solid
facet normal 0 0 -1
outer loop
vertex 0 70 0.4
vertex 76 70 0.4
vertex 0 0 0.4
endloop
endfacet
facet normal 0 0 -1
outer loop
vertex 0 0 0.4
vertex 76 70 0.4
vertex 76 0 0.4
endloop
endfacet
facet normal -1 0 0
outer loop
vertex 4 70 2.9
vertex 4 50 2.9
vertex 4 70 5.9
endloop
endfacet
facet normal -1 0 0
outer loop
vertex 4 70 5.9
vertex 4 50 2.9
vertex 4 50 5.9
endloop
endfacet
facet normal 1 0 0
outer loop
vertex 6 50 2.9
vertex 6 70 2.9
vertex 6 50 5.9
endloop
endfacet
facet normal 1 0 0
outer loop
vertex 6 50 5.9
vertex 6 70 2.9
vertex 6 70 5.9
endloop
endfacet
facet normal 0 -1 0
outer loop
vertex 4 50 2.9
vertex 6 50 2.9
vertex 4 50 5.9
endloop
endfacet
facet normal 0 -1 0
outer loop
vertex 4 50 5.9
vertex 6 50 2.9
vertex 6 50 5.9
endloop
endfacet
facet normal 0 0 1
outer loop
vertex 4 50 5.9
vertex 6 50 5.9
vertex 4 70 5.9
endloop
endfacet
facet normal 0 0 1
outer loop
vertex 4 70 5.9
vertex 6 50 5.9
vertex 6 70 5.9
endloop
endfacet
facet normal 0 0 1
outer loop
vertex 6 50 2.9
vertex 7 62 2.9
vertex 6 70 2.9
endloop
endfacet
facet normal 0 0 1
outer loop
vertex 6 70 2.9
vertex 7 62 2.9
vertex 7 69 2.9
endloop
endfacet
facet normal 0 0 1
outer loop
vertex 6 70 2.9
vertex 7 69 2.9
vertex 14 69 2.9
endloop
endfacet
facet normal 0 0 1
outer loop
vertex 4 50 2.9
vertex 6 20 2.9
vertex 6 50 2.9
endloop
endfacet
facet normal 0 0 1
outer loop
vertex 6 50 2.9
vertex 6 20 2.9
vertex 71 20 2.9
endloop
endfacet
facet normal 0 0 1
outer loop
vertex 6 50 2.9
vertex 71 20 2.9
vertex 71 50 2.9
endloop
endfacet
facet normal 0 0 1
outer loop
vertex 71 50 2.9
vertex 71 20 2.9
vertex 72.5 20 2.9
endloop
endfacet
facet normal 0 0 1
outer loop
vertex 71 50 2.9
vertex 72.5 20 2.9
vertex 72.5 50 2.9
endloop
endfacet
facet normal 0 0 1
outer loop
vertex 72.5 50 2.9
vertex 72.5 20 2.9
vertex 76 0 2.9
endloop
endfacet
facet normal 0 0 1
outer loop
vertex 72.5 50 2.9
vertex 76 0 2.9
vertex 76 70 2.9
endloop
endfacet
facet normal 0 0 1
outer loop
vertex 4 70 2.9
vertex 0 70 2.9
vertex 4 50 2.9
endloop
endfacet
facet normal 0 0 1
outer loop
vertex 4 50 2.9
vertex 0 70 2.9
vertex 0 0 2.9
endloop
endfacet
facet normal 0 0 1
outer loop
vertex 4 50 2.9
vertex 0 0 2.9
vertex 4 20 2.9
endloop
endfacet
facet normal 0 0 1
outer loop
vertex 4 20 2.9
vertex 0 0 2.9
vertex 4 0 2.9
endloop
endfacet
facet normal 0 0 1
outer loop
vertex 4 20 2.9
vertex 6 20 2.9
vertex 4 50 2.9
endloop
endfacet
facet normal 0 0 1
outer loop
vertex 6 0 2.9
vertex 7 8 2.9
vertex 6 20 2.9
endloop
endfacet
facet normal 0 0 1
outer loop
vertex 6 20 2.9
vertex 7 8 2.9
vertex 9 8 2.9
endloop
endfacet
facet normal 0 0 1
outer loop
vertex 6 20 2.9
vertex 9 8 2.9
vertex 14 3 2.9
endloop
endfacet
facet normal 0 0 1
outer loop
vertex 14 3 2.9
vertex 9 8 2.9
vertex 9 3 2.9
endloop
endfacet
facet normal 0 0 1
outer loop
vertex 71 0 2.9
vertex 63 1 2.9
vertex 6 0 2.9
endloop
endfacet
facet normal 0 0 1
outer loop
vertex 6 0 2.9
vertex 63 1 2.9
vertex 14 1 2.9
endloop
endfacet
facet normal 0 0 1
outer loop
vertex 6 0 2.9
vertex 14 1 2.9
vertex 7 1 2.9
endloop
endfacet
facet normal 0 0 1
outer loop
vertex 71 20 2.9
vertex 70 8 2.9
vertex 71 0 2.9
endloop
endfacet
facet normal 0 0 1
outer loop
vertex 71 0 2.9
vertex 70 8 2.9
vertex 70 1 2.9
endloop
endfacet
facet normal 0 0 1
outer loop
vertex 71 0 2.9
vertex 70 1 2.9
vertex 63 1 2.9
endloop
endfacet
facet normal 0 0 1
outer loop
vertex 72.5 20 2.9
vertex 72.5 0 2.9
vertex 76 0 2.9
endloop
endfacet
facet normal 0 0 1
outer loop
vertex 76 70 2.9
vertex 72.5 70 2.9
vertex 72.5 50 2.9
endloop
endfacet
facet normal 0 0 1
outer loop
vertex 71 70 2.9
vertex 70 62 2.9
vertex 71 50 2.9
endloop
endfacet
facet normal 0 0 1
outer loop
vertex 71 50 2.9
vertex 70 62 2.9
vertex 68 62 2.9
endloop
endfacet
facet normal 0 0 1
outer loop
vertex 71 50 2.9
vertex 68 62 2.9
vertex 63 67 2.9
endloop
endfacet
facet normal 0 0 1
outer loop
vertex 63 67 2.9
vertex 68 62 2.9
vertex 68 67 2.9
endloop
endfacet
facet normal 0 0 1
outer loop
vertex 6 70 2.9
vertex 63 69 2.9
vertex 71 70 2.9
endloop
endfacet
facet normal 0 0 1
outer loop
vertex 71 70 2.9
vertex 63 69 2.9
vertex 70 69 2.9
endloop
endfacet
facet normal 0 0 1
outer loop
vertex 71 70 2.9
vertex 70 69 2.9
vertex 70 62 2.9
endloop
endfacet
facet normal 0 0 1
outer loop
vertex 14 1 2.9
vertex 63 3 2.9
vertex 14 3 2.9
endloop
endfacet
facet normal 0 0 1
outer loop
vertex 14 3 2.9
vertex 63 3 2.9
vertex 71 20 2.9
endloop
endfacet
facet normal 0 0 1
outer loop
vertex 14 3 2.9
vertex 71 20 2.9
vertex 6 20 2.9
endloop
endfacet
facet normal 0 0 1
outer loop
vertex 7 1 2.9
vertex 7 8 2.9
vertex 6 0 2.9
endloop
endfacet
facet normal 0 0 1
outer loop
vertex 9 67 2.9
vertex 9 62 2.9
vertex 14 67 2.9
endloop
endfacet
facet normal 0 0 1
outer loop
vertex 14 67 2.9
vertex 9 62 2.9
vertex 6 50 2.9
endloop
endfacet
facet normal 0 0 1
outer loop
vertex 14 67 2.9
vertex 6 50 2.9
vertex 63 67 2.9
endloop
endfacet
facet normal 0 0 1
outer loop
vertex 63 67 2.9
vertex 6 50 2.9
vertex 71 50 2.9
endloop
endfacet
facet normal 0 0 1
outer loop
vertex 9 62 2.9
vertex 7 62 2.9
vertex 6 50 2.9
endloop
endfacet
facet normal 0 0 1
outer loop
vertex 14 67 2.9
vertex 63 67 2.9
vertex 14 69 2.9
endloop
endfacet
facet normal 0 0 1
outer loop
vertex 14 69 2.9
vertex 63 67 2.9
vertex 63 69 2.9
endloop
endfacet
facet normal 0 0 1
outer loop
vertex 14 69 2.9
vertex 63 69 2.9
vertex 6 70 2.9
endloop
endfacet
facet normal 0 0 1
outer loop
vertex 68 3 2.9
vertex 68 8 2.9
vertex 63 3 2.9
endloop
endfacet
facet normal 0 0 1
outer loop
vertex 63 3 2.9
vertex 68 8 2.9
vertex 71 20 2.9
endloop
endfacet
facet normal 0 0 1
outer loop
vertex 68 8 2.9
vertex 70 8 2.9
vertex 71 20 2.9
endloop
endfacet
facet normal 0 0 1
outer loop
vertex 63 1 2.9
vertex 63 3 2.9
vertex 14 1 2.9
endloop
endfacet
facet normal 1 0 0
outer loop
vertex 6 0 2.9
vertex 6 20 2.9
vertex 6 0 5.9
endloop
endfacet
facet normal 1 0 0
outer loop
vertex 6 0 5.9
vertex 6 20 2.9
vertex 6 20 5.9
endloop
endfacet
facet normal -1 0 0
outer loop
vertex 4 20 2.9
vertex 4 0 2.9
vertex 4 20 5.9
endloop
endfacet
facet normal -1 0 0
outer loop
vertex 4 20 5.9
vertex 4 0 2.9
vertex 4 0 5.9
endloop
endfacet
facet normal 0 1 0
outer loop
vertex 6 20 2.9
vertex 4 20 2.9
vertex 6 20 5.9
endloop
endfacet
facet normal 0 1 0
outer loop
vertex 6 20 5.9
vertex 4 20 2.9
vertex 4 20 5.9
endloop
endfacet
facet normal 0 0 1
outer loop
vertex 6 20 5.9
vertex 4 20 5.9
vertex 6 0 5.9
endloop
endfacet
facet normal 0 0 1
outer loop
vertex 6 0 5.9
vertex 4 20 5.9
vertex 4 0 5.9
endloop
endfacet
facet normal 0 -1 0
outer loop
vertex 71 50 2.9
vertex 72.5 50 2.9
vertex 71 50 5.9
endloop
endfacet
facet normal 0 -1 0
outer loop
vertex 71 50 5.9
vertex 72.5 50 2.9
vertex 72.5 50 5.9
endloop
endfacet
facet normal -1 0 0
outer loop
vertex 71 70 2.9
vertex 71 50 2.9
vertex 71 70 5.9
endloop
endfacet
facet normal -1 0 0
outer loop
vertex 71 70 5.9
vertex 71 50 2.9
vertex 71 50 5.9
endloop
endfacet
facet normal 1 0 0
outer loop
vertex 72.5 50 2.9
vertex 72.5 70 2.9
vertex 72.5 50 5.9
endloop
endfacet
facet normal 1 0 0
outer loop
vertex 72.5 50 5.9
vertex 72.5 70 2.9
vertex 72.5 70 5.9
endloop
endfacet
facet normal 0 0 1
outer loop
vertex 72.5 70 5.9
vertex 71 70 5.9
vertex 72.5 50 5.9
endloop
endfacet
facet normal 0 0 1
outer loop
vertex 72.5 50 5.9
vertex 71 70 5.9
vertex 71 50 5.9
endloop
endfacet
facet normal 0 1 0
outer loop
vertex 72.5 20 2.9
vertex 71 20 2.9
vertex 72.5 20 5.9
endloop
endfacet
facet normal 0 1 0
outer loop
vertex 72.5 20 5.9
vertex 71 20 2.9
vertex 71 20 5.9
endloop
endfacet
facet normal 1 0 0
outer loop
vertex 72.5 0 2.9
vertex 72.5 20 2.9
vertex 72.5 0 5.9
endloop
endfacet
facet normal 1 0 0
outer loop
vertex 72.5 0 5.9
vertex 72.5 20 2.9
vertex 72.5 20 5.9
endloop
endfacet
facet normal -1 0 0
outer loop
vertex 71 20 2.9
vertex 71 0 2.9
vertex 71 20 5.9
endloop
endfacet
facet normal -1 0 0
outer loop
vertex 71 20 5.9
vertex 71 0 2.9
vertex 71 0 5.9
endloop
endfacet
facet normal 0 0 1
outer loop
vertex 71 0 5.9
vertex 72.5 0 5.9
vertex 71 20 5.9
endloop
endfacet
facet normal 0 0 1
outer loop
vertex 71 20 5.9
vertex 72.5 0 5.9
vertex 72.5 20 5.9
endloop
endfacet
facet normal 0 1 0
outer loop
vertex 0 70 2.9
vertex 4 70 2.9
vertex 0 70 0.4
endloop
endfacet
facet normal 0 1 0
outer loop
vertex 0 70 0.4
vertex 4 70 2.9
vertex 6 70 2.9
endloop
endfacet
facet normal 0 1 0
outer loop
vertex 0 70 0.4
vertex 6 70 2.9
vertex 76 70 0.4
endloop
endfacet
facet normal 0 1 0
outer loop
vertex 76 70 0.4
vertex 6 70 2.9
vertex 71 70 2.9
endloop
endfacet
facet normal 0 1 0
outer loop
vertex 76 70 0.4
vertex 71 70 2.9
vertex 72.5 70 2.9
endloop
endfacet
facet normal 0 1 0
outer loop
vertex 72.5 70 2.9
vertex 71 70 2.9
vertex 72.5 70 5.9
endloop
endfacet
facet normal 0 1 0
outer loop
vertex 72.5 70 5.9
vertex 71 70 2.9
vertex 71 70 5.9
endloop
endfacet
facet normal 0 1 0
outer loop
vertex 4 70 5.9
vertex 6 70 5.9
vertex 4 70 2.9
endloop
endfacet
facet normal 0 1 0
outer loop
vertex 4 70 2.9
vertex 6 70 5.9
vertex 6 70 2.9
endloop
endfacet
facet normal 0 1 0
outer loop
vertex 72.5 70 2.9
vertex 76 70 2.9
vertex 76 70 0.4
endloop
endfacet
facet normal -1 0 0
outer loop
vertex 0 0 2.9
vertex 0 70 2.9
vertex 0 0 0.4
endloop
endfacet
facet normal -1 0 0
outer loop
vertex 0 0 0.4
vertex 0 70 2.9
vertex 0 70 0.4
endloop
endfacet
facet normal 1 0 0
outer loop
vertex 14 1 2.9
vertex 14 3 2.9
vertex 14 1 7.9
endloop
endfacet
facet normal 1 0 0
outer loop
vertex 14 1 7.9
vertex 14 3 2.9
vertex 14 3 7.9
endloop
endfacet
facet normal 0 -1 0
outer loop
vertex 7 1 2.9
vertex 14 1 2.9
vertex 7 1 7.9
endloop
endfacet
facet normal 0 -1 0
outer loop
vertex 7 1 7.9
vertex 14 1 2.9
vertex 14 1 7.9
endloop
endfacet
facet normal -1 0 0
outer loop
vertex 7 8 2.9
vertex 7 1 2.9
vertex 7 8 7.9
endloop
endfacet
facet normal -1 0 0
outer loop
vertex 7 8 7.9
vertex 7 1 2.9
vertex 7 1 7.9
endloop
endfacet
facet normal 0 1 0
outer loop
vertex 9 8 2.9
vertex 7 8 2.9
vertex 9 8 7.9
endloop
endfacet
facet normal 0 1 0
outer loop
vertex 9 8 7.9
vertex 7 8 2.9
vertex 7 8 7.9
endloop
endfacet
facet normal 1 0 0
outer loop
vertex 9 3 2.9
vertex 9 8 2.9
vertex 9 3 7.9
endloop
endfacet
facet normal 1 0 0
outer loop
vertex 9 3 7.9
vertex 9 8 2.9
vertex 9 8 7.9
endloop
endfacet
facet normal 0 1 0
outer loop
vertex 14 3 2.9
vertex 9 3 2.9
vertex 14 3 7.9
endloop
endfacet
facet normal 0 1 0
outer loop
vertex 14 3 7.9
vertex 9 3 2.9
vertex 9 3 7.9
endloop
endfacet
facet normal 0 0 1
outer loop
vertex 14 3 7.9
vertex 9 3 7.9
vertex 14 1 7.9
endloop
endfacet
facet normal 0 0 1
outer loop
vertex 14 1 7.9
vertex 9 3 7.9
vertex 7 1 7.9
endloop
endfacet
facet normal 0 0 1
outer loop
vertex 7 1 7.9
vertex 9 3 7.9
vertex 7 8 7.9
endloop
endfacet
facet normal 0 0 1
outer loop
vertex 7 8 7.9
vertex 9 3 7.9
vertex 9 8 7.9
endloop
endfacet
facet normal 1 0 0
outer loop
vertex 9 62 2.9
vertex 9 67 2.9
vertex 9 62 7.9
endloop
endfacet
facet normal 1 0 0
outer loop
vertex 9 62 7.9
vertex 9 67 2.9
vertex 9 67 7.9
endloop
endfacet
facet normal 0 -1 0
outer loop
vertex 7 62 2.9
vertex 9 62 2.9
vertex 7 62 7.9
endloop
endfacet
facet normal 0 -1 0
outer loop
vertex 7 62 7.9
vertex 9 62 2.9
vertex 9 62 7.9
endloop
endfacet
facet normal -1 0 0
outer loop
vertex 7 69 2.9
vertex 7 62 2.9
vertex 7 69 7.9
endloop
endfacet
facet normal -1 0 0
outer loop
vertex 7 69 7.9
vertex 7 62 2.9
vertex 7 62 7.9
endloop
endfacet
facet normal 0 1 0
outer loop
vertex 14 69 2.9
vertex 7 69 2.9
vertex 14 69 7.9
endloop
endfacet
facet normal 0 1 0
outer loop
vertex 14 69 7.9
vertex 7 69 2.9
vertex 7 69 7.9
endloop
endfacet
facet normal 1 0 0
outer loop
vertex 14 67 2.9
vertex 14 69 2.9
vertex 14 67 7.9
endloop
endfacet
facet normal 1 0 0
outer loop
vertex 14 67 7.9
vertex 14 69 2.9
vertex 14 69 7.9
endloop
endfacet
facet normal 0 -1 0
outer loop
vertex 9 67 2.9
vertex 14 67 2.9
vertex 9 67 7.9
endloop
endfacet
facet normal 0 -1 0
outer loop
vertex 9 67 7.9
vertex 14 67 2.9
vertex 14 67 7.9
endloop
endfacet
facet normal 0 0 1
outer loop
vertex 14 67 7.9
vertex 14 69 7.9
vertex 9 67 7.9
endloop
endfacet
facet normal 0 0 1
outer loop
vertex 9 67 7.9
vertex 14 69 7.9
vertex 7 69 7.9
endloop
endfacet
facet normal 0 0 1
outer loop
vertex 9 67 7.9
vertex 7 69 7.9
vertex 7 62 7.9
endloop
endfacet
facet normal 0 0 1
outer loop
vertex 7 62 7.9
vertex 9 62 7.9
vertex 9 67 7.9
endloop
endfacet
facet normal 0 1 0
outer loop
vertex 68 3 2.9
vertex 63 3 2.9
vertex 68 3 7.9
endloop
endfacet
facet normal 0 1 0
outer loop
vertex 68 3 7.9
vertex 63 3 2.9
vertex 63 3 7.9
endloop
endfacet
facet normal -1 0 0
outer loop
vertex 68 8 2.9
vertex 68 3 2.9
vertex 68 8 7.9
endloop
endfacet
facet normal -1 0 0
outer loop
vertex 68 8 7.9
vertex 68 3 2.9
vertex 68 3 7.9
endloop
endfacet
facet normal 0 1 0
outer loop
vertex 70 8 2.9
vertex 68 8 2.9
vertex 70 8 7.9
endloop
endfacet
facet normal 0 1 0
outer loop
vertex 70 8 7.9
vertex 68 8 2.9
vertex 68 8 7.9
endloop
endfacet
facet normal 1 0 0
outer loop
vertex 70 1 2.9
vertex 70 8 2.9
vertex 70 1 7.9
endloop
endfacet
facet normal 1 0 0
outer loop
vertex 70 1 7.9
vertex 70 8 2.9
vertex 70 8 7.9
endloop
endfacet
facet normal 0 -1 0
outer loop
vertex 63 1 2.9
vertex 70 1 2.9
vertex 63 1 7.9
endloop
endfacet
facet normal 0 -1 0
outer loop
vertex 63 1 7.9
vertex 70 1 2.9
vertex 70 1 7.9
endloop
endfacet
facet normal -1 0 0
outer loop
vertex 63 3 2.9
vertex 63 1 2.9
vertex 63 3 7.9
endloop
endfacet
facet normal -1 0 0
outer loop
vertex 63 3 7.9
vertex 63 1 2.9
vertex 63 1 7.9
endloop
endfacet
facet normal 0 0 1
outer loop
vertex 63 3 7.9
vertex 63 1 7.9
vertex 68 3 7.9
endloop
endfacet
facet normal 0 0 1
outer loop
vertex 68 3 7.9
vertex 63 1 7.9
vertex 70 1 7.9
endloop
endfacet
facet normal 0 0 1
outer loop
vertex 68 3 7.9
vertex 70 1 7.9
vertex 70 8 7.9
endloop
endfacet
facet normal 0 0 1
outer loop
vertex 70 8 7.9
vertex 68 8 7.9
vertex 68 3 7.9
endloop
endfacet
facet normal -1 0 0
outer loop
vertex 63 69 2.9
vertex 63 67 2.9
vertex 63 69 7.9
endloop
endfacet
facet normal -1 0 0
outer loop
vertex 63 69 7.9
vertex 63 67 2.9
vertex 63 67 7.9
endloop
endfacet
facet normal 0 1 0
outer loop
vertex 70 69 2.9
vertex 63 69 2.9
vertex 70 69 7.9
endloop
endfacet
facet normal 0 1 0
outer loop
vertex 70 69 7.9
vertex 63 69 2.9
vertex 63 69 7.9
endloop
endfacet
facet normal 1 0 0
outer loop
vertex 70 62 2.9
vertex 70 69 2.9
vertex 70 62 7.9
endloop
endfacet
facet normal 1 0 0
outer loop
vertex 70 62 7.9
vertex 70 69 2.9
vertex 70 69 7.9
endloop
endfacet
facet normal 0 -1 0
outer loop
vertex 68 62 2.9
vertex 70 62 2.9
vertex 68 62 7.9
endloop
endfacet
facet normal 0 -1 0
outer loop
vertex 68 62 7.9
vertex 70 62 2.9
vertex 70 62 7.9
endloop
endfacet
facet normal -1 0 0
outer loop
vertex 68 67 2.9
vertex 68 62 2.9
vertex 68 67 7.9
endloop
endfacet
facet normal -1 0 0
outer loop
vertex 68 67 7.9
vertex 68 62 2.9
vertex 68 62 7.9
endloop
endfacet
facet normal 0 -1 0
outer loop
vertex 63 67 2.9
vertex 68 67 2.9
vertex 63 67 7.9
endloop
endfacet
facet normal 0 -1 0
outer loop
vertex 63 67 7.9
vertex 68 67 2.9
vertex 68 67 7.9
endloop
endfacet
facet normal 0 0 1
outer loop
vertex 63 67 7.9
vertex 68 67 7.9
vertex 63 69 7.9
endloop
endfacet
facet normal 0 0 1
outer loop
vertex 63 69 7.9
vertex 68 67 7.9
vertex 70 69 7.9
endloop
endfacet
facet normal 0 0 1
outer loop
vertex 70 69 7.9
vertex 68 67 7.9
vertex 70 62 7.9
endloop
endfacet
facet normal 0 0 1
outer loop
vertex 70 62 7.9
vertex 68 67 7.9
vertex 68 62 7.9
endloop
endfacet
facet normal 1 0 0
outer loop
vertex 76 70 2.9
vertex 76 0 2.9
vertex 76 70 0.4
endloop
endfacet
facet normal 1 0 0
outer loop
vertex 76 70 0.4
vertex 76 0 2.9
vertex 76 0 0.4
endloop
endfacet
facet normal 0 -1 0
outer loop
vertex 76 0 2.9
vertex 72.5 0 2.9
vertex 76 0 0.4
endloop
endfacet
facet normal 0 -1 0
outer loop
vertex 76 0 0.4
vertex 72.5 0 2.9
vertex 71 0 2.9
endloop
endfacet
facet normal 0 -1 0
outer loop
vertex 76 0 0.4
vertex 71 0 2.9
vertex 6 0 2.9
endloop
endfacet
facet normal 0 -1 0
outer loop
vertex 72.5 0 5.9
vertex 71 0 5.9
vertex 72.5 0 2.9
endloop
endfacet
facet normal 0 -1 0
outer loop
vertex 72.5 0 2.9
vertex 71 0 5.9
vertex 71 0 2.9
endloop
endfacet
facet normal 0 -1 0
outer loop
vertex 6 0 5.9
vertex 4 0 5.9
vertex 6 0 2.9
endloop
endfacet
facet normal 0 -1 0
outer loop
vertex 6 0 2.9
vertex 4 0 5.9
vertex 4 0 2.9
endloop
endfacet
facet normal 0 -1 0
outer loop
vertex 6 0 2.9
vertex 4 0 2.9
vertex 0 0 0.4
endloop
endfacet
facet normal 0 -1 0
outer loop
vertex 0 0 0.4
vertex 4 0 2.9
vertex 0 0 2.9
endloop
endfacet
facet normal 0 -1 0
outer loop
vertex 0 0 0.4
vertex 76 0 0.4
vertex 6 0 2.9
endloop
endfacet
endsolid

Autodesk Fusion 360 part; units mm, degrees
sketch "Sketch2" plane through (0, 0, 0) normal (0, 0, 1) x (1, 0, 0)
  line L0 (0, 0) -> (76, 0)
  line L1 (76, 0) -> (76, 70)
  line L2 (76, 70) -> (0, 70)
  line L3 (0, 70) -> (0, 0)
  dimension "d20" = 76
  dimension "d21" = 70
extrude "Extrude1" add sketch "Sketch2" along normal blind 2.9
sketch "Sketch3" plane through (0, 0, 2.9) normal (0, 0, 1) x (-1, 0, 0)
  line L0 (0, -70) -> (0, 0)
  line L1 (0, 0) -> (-76, 0)
  line L2 (-76, 0) -> (-76, -70)
  line L3 (-76, -70) -> (0, -70)
  line L4 (0, -70) -> (-7, -70)
  line L5 (-7, -70) -> (-7, -69)
  line L6 (-7, -69) -> (-14, -69)
  line L7 (-14, -69) -> (-14, -67)
  line L8 (-14, -67) -> (-9, -67)
  line L9 (-9, -67) -> (-9, -62)
  line L10 (-9, -62) -> (-7, -62)
  line L11 (-7, -62) -> (-7, -69)
  line L12 (-9, -67) -> (-68, -67)
  line L13 (-68, -67) -> (-63, -67)
  line L14 (-63, -67) -> (-63, -69)
  line L15 (-63, -69) -> (-70, -69)
  line L16 (-70, -69) -> (-70, -62)
  line L17 (-70, -62) -> (-68, -62)
  line L18 (-68, -62) -> (-68, -67)
  line L19 (-68, -67) -> (-68, -3)
  line L20 (-68, -3) -> (-63, -3)
  line L21 (-63, -3) -> (-63, -1)
  line L22 (-63, -1) -> (-70, -1)
  line L23 (-70, -1) -> (-70, -8)
  line L24 (-70, -8) -> (-68, -8)
  line L25 (-68, -3) -> (-68, -8)
  line L26 (-9, -67) -> (-9, -3)
  line L27 (-9, -3) -> (-14, -3)
  line L28 (-14, -3) -> (-14, -1)
  line L29 (-14, -1) -> (-7, -1)
  line L30 (-7, -1) -> (-7, -8)
  line L31 (-7, -8) -> (-9, -8)
  line L32 (-9, -3) -> (-9, -8)
  dimension "d24" = 7
  dimension "d25" = 1
  dimension "d26" = 7
  dimension "d27" = 2
  dimension "d28" = 5
  dimension "d29" = 5
  dimension "d30" = 2
  dimension "d31" = 59
  dimension "d32" = 5
  dimension "d33" = 2
  dimension "d34" = 64
  dimension "d35" = 5
  dimension "d36" = 2
  dimension "d37" = 7
  dimension "d38" = 7
  dimension "d39" = 2
  dimension "d40" = 64
  dimension "d41" = 5
  dimension "d42" = 2
  dimension "d43" = 7
  dimension "d44" = 7
extrude "Extrude2" add sketch "Sketch3" along normal blind 5 contours L19 L20 L21 L22 L23 L24 L25 | L12 L13 L14 L15 L16 L17 L18 L19 | L26 L27 L28 L29 L30 L31 L32 | L6 L7 L8 L9 L10 L11 L12 L26
extrude "Extrude3" cut 1 faces at (25.3333, 46.6667, 0) along direction (0, 0, 1) blind 1
sketch "Sketch4" plane through (0, 0, 2.9) normal (0, 0, 1) x (-1, 0, 0)
  line L0 (-14, -3) -> (-14, -1)
  line L1 (-14, -1) -> (-7, -1)
  line L2 (-7, -1) -> (-7, -8)
  line L3 (-7, -8) -> (-9, -8)
  line L4 (-9, -8) -> (-9, -3)
  line L5 (-9, -3) -> (-14, -3)
  line L6 (-9, -67) -> (-9, -62)
  line L7 (-9, -62) -> (-7, -62)
  line L8 (-7, -62) -> (-7, -69)
  line L9 (-7, -69) -> (-14, -69)
  line L10 (-14, -69) -> (-14, -67)
  line L11 (-14, -67) -> (-9, -67)
  line L12 (-63, -3) -> (-68, -3)
  line L13 (-68, -3) -> (-68, -8)
  line L14 (-68, -8) -> (-70, -8)
  line L15 (-70, -8) -> (-70, -1)
  line L16 (-70, -1) -> (-63, -1)
  line L17 (-63, -1) -> (-63, -3)
  line L18 (-63, -67) -> (-63, -69)
  line L19 (-63, -69) -> (-70, -69)
  line L20 (-70, -69) -> (-70, -62)
  line L21 (-70, -62) -> (-68, -62)
  line L22 (-68, -62) -> (-68, -67)
  line L23 (-68, -67) -> (-63, -67)
  line L24 (0, -70) -> (0, 0)
  line L25 (0, 0) -> (-76, 0)
  line L26 (-76, 0) -> (-76, -70)
  line L27 (-76, -70) -> (0, -70)
  line L28 (0, -70) -> (-4, -70)
  line L29 (-4, -70) -> (-6, -70)
  line L30 (-6, -70) -> (-6, -50)
  line L31 (-6, -50) -> (-4, -50)
  line L32 (-4, -50) -> (-4, -70)
  line L33 (-76, -70) -> (-72.5, -70)
  line L34 (-72.5, -70) -> (-71, -70)
  line L35 (-71, -70) -> (-71, -50)
  line L36 (-71, -50) -> (-72.5, -50)
  line L37 (-72.5, -50) -> (-72.5, -70)
  line L38 (0, -70) -> (0, -35)
  line L39 (0, -35) -> (-68, -35)
  line L40 (-4, -20) -> (-4, 0)
  line L41 (-4, 0) -> (-6, 0)
  line L42 (-6, 0) -> (-6, -20)
  line L43 (-6, -20) -> (-4, -20)
  line L44 (-71, 0) -> (-71, -20)
  line L45 (-72.5, 0) -> (-71, 0)
  line L46 (-72.5, -20) -> (-72.5, 0)
  line L47 (-71, -20) -> (-72.5, -20)
  dimension "d49" = 4
  dimension "d50" = 2
  dimension "d51" = 20
  dimension "d52" = 3.5
  dimension "d53" = 20
  dimension "d54" = 35
extrude "Extrude4" add sketch "Sketch4" along normal blind 3 contours L27 L29 L30 L31 L32 | L25 L40 L41 L42 L43 | L27 L34 L35 L36 L37 | L25 L44 L45 L46 L47
sketch "Sketch5" plane through (0, 0, 1) normal (0, 0, -1) x (1, 0, 0)
  line L0 (0, 0) -> (0, -70)
  line L1 (0, -70) -> (76, -70)
  line L2 (76, -70) -> (76, 0)
  line L3 (76, 0) -> (0, 0)
  line L4 (0, 0) -> (76, 0)
  line L5 (76, 0) -> (76, -70)
  line L6 (76, -70) -> (0, -70)
  line L7 (0, -70) -> (0, 0)
extrude "Extrude5" add sketch "Sketch5" along normal blind 0.6
equation "d54 = ( 70 / 2 ) * 1 mm"
